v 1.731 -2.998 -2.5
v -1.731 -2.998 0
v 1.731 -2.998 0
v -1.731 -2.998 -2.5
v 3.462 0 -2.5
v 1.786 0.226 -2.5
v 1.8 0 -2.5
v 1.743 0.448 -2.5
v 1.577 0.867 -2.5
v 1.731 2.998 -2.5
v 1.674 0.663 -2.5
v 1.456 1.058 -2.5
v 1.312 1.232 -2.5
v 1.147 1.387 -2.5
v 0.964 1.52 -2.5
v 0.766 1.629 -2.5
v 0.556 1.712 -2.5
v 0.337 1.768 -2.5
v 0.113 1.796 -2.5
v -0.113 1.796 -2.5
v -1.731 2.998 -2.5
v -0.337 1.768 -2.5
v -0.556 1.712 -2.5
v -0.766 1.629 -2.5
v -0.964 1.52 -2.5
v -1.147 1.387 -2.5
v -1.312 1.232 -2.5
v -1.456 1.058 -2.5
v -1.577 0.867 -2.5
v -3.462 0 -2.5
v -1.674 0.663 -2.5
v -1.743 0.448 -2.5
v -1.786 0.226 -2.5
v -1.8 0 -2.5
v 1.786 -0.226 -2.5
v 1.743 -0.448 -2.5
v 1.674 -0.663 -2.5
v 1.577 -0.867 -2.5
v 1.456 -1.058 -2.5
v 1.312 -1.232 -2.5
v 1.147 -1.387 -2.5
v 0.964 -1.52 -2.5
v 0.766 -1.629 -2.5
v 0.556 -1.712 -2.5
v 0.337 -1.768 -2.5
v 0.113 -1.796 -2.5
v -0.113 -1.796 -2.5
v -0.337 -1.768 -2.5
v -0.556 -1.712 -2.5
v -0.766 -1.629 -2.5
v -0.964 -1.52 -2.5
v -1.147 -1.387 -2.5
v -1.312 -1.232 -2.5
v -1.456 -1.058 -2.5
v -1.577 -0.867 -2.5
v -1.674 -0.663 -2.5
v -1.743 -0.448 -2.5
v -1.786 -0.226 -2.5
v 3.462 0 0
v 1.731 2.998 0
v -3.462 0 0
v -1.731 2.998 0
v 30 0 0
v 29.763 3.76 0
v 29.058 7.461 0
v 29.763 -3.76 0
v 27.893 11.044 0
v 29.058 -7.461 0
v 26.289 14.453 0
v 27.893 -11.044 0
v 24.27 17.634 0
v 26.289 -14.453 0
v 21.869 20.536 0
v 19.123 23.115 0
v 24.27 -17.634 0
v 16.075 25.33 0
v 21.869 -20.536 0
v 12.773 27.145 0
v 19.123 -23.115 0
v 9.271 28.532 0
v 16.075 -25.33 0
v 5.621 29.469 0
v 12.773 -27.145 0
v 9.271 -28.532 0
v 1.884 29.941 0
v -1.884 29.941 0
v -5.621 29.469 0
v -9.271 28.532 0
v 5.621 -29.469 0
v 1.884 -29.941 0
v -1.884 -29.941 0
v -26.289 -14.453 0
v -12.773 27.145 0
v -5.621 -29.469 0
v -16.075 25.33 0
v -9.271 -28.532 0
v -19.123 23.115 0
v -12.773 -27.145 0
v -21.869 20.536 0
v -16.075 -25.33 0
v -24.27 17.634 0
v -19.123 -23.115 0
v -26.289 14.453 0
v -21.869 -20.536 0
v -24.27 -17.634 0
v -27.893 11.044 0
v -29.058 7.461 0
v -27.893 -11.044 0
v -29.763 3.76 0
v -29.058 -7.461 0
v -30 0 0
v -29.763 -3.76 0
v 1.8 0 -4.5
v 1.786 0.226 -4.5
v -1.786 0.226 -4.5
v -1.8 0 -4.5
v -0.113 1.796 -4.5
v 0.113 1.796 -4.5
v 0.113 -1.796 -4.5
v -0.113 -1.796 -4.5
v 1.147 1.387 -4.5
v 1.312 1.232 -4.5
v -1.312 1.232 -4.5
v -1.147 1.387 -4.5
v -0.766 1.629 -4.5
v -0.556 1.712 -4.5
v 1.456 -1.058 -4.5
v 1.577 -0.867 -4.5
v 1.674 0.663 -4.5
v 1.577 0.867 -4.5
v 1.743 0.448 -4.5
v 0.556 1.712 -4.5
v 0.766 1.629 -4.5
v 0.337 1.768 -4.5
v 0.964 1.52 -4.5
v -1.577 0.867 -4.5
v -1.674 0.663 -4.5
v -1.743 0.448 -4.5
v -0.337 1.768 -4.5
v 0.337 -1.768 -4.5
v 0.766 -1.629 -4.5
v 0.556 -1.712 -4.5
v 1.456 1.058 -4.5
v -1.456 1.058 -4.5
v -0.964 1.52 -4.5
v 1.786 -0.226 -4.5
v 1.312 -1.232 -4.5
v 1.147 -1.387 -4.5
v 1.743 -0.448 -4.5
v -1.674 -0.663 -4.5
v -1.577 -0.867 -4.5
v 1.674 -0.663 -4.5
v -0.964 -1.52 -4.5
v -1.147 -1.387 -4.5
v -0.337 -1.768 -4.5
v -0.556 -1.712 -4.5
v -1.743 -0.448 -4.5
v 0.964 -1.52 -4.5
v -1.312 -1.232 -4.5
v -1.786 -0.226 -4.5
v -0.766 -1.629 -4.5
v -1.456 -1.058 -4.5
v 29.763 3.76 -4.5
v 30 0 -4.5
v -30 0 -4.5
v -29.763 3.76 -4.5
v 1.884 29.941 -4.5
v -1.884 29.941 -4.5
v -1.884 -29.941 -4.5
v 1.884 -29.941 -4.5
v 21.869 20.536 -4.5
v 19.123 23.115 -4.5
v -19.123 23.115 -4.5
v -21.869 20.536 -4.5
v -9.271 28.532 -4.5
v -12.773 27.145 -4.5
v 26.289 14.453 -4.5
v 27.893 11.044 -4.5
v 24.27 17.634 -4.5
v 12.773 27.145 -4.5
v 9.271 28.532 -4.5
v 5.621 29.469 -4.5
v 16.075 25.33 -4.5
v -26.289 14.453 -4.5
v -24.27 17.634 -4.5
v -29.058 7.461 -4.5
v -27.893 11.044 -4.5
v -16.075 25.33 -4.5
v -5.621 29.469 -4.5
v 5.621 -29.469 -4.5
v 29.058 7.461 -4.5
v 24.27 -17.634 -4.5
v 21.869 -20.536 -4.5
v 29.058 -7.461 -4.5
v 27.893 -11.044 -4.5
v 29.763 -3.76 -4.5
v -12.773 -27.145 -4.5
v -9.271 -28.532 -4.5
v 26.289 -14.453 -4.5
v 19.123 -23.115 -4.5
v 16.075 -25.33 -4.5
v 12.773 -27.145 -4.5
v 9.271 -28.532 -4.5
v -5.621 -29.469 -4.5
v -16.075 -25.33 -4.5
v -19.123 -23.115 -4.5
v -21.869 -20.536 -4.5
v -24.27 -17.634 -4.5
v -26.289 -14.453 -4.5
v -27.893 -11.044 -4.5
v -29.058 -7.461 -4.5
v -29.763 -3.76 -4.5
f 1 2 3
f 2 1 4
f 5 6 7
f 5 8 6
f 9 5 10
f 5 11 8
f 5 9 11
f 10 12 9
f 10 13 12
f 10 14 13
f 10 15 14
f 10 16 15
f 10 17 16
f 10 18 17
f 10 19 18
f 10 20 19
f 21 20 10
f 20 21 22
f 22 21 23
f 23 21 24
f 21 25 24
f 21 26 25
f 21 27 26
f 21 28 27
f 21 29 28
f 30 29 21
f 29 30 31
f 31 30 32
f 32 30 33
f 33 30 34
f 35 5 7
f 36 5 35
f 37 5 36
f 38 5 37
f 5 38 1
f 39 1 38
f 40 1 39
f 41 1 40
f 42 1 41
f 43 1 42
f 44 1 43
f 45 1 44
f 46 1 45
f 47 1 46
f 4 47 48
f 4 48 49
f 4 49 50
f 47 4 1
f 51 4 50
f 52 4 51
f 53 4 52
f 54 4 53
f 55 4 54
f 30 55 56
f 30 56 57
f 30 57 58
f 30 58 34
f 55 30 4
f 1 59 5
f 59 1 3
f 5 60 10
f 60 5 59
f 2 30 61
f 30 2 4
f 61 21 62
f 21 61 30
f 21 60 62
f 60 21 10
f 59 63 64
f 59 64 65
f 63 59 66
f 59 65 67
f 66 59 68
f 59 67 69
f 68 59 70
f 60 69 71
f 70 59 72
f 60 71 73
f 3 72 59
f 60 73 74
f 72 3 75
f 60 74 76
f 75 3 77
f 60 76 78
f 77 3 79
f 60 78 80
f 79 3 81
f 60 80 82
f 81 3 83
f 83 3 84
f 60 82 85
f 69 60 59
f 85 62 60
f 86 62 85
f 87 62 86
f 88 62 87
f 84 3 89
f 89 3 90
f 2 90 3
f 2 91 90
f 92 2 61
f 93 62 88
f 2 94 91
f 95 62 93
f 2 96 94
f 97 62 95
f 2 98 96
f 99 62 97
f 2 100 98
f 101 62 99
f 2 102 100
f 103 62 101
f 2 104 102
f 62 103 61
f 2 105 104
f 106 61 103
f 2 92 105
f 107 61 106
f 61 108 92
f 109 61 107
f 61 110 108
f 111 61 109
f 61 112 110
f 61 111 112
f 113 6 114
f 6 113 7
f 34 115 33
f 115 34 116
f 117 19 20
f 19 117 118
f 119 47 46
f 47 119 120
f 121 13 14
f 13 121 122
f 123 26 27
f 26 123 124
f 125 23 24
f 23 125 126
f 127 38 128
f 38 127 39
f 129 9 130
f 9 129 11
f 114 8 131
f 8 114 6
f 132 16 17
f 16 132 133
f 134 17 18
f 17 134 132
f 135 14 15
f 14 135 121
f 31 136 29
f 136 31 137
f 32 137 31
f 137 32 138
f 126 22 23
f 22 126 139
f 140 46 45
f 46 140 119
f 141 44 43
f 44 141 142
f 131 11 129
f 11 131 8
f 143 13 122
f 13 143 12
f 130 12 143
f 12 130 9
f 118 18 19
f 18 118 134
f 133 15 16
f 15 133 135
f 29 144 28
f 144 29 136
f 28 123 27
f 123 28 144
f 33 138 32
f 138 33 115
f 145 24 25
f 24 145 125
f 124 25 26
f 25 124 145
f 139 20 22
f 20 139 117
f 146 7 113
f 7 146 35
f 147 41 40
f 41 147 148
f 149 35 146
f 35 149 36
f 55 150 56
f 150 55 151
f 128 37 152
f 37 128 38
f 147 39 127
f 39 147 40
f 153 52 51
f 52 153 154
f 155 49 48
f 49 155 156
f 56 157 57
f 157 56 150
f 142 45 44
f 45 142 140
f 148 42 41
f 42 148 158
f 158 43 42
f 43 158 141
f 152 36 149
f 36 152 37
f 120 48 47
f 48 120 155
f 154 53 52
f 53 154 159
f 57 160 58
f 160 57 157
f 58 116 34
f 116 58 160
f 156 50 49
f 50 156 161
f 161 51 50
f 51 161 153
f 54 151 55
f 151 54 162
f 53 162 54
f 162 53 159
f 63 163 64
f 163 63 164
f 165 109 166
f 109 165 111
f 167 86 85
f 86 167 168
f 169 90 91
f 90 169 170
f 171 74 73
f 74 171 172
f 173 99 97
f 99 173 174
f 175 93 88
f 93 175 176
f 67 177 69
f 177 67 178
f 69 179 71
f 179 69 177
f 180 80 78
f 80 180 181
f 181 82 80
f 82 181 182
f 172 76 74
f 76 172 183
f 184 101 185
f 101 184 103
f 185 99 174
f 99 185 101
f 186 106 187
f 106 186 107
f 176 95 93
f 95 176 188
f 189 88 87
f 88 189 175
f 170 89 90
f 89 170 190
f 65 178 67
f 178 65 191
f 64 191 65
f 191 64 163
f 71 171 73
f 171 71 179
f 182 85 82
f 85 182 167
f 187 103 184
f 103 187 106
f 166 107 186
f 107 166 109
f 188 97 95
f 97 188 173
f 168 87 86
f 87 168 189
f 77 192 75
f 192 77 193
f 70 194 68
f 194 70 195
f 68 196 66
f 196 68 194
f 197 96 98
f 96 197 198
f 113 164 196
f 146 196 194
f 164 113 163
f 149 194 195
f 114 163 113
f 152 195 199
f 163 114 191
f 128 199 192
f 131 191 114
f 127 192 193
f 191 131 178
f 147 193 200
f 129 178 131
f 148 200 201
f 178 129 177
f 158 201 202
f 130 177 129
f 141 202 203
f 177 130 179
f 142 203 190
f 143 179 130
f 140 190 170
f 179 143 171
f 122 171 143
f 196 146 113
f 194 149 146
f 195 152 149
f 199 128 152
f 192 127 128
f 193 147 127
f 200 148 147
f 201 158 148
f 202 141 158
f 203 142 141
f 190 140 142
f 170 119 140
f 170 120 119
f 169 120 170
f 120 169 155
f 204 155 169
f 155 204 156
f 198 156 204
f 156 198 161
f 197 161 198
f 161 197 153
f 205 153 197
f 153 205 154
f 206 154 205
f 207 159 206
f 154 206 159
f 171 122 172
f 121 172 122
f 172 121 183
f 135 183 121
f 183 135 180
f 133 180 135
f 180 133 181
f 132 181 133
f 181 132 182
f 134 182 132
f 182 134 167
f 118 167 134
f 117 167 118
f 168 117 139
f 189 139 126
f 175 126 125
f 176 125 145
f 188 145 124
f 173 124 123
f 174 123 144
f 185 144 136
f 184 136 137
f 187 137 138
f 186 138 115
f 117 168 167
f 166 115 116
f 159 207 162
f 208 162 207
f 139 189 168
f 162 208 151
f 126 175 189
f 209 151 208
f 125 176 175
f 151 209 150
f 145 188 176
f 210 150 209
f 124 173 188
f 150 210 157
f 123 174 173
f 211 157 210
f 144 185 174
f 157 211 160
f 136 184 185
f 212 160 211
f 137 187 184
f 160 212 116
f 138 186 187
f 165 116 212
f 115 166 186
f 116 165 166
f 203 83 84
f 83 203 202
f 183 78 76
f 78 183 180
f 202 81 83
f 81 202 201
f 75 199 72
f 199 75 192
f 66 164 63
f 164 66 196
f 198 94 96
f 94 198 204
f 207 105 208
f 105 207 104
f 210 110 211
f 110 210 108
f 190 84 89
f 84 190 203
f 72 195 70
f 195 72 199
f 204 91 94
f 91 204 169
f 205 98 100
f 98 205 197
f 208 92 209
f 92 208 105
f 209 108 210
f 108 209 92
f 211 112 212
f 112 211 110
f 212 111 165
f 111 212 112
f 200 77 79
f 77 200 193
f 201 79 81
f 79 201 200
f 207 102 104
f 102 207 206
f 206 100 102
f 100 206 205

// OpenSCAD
$fn = 50;


difference() {
	union() {
		translate(v = [0, 0, -4.5000000000]) {
			cylinder(h = 4.5000000000, r = 30.0000000000);
		}
	}
	union() {
		translate(v = [0, 0, 0]) {
			rotate(a = [0, 0, 0]) {
				difference() {
					union() {
						translate(v = [0, 0, -2.5000000000]) {
							linear_extrude(height = 2.5000000000) {
								polygon(points = [[3.4620000000, 0.0000000000], [1.7310000000, 2.9981799479], [-1.7310000000, 2.9981799479], [-3.4620000000, 0.0000000000], [-1.7310000000, -2.9981799479], [1.7310000000, -2.9981799479]]);
							}
						}
					}
					union();
				}
			}
		}
		#translate(v = [0, 0, -100.0000000000]) {
			cylinder(h = 200, r = 1.8000000000);
		}
	}
}
